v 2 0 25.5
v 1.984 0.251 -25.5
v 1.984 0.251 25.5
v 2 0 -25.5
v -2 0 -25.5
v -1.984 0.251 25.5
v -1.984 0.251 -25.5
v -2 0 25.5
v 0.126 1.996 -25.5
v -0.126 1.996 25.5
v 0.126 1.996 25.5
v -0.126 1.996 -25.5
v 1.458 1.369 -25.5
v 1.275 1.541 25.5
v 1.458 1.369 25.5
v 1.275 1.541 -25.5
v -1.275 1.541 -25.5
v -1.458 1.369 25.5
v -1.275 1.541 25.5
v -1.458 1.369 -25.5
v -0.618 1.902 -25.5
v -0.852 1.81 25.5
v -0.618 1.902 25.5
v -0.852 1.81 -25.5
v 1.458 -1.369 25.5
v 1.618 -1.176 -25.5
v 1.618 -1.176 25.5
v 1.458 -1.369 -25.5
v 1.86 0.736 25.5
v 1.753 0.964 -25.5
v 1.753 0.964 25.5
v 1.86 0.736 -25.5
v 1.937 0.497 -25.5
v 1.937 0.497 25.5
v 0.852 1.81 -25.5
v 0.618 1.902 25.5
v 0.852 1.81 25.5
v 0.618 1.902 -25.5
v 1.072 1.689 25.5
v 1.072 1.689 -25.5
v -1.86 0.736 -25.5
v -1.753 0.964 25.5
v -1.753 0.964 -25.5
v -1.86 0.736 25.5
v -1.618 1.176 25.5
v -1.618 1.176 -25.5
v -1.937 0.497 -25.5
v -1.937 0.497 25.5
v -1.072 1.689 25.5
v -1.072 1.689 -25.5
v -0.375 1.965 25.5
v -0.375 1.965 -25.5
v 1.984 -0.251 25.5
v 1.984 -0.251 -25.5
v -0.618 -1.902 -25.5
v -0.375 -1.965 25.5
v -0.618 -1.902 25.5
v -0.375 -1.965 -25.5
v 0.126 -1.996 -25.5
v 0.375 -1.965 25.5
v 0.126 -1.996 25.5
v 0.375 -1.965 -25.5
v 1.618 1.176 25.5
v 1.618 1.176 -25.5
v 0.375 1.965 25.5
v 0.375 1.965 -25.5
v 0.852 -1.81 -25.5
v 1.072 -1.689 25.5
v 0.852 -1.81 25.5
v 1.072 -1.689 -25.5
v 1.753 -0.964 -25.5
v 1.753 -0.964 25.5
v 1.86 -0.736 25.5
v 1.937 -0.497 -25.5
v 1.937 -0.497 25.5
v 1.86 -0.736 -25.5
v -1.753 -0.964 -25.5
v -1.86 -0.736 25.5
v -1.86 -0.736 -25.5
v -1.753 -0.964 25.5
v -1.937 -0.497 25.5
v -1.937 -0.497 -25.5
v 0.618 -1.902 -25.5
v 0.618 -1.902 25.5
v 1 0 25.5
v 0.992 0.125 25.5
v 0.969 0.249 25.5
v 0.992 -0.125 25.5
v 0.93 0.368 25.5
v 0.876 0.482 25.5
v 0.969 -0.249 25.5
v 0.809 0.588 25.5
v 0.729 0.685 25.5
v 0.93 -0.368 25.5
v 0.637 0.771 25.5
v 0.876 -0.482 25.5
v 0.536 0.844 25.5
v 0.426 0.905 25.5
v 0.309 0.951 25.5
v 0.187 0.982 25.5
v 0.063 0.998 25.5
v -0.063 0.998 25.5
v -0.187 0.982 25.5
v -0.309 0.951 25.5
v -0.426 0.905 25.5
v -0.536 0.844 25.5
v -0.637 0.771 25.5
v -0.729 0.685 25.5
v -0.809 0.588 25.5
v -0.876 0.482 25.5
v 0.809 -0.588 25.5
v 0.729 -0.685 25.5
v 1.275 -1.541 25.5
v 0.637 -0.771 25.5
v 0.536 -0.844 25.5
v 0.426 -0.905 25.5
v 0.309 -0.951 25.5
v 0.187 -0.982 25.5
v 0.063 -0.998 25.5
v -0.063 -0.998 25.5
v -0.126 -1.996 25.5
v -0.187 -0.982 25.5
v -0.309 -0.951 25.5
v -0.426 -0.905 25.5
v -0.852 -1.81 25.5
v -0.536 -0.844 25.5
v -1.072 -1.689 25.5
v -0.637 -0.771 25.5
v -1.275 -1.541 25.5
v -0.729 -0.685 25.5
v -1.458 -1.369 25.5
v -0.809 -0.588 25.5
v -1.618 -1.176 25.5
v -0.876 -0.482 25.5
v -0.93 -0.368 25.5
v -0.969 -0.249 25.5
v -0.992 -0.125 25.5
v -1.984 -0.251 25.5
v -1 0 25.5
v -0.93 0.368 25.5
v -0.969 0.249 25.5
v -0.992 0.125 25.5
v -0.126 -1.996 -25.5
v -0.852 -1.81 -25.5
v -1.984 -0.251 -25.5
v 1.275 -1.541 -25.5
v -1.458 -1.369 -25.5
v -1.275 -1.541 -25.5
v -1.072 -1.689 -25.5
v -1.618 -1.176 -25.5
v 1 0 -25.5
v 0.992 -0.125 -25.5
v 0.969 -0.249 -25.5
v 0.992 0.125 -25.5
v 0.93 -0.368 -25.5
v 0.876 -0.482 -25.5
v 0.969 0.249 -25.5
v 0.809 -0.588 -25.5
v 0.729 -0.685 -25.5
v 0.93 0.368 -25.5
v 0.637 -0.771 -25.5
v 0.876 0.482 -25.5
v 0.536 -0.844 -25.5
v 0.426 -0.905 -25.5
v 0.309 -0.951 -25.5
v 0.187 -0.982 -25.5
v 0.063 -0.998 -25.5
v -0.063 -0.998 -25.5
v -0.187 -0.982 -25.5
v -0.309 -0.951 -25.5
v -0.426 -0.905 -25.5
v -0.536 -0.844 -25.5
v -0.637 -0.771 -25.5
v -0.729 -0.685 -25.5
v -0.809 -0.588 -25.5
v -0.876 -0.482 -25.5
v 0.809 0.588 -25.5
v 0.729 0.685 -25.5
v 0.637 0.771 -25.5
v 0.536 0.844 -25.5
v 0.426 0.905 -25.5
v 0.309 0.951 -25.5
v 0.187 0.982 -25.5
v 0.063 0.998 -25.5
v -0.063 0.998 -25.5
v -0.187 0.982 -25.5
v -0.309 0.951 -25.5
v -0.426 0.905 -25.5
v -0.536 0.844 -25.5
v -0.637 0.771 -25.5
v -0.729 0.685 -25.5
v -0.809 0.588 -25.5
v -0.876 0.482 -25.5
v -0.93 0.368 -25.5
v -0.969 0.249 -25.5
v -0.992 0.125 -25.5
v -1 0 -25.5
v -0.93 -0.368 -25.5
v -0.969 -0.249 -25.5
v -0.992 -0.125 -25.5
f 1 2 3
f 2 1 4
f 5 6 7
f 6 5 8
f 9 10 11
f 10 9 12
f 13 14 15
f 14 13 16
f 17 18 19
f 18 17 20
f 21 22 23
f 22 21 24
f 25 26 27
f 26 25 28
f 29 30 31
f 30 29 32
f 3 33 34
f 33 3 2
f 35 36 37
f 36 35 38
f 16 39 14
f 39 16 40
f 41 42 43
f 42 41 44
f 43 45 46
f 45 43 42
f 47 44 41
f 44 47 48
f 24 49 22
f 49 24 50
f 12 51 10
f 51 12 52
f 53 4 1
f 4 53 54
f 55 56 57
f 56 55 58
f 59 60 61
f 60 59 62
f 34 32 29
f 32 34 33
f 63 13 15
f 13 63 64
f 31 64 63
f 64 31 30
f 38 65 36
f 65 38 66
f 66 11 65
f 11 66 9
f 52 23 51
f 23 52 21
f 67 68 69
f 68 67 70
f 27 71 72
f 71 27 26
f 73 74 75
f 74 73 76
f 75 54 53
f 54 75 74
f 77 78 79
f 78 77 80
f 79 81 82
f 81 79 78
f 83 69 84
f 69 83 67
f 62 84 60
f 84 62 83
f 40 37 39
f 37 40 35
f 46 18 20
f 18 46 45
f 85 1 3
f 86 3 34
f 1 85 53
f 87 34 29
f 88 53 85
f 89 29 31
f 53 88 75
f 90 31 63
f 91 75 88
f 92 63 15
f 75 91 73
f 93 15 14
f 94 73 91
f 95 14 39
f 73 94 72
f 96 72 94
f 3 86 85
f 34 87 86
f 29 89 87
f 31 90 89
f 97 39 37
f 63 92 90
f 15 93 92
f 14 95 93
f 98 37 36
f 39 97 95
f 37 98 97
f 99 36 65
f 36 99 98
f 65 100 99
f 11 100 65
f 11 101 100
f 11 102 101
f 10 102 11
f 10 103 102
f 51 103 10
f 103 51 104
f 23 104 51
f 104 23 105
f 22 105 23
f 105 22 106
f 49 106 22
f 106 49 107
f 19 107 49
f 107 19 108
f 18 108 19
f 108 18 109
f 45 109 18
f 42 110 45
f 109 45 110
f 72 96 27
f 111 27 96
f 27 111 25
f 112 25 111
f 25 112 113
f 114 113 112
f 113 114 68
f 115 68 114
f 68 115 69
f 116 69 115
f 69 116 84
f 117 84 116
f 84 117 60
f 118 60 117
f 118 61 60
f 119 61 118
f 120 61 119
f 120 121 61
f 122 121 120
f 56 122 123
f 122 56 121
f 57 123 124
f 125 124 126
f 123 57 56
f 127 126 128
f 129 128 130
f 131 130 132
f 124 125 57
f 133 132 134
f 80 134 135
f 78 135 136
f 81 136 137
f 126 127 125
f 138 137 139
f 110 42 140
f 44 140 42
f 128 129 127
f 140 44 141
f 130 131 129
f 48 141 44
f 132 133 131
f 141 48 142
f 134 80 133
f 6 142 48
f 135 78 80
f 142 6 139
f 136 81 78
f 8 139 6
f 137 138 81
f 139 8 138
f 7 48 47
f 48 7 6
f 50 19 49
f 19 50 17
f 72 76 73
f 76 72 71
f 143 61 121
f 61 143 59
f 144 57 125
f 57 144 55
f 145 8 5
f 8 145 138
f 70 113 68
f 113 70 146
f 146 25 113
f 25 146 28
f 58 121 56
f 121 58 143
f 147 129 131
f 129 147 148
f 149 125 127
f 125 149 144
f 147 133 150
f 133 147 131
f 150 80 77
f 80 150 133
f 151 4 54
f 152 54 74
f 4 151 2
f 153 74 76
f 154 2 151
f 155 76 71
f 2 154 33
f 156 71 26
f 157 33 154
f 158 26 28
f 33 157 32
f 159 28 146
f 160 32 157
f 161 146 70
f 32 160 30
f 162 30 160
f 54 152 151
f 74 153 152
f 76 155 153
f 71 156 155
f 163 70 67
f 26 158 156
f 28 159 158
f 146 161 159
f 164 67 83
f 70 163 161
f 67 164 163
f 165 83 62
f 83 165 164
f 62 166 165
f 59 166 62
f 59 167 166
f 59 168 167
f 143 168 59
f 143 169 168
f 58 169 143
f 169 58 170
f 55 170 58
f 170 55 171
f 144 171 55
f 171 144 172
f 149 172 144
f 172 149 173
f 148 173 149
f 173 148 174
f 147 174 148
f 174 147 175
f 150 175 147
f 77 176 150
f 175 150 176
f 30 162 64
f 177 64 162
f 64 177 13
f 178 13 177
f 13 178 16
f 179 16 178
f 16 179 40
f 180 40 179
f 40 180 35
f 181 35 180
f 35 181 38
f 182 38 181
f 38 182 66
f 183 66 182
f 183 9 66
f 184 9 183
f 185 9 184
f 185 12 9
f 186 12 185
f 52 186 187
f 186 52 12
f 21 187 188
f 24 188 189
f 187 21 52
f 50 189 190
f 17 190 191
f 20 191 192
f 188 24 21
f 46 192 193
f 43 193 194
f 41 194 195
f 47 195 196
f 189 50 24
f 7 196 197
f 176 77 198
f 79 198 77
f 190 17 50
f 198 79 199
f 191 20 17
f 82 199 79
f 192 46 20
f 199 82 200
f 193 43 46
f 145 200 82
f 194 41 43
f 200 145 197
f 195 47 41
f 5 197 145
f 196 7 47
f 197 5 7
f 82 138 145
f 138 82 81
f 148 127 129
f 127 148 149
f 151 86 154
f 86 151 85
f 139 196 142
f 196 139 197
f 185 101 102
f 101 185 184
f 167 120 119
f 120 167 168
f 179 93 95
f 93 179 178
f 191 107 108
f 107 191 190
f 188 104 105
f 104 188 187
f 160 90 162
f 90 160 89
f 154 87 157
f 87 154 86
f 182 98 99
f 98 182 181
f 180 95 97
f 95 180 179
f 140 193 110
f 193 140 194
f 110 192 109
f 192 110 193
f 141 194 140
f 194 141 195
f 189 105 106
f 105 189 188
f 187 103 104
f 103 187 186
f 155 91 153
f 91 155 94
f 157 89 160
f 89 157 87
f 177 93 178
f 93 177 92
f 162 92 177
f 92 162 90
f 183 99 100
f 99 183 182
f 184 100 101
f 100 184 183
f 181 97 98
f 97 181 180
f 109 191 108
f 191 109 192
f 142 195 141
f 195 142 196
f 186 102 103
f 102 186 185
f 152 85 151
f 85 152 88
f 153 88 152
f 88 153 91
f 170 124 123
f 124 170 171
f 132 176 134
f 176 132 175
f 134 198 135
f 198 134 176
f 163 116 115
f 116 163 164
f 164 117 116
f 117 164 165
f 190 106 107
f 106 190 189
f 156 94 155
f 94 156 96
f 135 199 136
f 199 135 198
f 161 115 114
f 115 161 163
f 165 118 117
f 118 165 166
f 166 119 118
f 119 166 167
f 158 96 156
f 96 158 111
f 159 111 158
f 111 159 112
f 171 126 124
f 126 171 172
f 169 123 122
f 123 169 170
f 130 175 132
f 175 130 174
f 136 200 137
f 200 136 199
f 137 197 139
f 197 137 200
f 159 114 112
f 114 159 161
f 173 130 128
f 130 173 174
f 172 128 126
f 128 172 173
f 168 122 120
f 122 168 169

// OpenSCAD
$fn = 50;


difference() {
	union() {
		translate(v = [0, 0, -25.5000000000]) {
			cylinder(h = 51, r = 2.0000000000);
		}
	}
	union() {
		translate(v = [0, 0, -100.0000000000]) {
			cylinder(h = 200, r = 1.0000000000);
		}
	}
}
